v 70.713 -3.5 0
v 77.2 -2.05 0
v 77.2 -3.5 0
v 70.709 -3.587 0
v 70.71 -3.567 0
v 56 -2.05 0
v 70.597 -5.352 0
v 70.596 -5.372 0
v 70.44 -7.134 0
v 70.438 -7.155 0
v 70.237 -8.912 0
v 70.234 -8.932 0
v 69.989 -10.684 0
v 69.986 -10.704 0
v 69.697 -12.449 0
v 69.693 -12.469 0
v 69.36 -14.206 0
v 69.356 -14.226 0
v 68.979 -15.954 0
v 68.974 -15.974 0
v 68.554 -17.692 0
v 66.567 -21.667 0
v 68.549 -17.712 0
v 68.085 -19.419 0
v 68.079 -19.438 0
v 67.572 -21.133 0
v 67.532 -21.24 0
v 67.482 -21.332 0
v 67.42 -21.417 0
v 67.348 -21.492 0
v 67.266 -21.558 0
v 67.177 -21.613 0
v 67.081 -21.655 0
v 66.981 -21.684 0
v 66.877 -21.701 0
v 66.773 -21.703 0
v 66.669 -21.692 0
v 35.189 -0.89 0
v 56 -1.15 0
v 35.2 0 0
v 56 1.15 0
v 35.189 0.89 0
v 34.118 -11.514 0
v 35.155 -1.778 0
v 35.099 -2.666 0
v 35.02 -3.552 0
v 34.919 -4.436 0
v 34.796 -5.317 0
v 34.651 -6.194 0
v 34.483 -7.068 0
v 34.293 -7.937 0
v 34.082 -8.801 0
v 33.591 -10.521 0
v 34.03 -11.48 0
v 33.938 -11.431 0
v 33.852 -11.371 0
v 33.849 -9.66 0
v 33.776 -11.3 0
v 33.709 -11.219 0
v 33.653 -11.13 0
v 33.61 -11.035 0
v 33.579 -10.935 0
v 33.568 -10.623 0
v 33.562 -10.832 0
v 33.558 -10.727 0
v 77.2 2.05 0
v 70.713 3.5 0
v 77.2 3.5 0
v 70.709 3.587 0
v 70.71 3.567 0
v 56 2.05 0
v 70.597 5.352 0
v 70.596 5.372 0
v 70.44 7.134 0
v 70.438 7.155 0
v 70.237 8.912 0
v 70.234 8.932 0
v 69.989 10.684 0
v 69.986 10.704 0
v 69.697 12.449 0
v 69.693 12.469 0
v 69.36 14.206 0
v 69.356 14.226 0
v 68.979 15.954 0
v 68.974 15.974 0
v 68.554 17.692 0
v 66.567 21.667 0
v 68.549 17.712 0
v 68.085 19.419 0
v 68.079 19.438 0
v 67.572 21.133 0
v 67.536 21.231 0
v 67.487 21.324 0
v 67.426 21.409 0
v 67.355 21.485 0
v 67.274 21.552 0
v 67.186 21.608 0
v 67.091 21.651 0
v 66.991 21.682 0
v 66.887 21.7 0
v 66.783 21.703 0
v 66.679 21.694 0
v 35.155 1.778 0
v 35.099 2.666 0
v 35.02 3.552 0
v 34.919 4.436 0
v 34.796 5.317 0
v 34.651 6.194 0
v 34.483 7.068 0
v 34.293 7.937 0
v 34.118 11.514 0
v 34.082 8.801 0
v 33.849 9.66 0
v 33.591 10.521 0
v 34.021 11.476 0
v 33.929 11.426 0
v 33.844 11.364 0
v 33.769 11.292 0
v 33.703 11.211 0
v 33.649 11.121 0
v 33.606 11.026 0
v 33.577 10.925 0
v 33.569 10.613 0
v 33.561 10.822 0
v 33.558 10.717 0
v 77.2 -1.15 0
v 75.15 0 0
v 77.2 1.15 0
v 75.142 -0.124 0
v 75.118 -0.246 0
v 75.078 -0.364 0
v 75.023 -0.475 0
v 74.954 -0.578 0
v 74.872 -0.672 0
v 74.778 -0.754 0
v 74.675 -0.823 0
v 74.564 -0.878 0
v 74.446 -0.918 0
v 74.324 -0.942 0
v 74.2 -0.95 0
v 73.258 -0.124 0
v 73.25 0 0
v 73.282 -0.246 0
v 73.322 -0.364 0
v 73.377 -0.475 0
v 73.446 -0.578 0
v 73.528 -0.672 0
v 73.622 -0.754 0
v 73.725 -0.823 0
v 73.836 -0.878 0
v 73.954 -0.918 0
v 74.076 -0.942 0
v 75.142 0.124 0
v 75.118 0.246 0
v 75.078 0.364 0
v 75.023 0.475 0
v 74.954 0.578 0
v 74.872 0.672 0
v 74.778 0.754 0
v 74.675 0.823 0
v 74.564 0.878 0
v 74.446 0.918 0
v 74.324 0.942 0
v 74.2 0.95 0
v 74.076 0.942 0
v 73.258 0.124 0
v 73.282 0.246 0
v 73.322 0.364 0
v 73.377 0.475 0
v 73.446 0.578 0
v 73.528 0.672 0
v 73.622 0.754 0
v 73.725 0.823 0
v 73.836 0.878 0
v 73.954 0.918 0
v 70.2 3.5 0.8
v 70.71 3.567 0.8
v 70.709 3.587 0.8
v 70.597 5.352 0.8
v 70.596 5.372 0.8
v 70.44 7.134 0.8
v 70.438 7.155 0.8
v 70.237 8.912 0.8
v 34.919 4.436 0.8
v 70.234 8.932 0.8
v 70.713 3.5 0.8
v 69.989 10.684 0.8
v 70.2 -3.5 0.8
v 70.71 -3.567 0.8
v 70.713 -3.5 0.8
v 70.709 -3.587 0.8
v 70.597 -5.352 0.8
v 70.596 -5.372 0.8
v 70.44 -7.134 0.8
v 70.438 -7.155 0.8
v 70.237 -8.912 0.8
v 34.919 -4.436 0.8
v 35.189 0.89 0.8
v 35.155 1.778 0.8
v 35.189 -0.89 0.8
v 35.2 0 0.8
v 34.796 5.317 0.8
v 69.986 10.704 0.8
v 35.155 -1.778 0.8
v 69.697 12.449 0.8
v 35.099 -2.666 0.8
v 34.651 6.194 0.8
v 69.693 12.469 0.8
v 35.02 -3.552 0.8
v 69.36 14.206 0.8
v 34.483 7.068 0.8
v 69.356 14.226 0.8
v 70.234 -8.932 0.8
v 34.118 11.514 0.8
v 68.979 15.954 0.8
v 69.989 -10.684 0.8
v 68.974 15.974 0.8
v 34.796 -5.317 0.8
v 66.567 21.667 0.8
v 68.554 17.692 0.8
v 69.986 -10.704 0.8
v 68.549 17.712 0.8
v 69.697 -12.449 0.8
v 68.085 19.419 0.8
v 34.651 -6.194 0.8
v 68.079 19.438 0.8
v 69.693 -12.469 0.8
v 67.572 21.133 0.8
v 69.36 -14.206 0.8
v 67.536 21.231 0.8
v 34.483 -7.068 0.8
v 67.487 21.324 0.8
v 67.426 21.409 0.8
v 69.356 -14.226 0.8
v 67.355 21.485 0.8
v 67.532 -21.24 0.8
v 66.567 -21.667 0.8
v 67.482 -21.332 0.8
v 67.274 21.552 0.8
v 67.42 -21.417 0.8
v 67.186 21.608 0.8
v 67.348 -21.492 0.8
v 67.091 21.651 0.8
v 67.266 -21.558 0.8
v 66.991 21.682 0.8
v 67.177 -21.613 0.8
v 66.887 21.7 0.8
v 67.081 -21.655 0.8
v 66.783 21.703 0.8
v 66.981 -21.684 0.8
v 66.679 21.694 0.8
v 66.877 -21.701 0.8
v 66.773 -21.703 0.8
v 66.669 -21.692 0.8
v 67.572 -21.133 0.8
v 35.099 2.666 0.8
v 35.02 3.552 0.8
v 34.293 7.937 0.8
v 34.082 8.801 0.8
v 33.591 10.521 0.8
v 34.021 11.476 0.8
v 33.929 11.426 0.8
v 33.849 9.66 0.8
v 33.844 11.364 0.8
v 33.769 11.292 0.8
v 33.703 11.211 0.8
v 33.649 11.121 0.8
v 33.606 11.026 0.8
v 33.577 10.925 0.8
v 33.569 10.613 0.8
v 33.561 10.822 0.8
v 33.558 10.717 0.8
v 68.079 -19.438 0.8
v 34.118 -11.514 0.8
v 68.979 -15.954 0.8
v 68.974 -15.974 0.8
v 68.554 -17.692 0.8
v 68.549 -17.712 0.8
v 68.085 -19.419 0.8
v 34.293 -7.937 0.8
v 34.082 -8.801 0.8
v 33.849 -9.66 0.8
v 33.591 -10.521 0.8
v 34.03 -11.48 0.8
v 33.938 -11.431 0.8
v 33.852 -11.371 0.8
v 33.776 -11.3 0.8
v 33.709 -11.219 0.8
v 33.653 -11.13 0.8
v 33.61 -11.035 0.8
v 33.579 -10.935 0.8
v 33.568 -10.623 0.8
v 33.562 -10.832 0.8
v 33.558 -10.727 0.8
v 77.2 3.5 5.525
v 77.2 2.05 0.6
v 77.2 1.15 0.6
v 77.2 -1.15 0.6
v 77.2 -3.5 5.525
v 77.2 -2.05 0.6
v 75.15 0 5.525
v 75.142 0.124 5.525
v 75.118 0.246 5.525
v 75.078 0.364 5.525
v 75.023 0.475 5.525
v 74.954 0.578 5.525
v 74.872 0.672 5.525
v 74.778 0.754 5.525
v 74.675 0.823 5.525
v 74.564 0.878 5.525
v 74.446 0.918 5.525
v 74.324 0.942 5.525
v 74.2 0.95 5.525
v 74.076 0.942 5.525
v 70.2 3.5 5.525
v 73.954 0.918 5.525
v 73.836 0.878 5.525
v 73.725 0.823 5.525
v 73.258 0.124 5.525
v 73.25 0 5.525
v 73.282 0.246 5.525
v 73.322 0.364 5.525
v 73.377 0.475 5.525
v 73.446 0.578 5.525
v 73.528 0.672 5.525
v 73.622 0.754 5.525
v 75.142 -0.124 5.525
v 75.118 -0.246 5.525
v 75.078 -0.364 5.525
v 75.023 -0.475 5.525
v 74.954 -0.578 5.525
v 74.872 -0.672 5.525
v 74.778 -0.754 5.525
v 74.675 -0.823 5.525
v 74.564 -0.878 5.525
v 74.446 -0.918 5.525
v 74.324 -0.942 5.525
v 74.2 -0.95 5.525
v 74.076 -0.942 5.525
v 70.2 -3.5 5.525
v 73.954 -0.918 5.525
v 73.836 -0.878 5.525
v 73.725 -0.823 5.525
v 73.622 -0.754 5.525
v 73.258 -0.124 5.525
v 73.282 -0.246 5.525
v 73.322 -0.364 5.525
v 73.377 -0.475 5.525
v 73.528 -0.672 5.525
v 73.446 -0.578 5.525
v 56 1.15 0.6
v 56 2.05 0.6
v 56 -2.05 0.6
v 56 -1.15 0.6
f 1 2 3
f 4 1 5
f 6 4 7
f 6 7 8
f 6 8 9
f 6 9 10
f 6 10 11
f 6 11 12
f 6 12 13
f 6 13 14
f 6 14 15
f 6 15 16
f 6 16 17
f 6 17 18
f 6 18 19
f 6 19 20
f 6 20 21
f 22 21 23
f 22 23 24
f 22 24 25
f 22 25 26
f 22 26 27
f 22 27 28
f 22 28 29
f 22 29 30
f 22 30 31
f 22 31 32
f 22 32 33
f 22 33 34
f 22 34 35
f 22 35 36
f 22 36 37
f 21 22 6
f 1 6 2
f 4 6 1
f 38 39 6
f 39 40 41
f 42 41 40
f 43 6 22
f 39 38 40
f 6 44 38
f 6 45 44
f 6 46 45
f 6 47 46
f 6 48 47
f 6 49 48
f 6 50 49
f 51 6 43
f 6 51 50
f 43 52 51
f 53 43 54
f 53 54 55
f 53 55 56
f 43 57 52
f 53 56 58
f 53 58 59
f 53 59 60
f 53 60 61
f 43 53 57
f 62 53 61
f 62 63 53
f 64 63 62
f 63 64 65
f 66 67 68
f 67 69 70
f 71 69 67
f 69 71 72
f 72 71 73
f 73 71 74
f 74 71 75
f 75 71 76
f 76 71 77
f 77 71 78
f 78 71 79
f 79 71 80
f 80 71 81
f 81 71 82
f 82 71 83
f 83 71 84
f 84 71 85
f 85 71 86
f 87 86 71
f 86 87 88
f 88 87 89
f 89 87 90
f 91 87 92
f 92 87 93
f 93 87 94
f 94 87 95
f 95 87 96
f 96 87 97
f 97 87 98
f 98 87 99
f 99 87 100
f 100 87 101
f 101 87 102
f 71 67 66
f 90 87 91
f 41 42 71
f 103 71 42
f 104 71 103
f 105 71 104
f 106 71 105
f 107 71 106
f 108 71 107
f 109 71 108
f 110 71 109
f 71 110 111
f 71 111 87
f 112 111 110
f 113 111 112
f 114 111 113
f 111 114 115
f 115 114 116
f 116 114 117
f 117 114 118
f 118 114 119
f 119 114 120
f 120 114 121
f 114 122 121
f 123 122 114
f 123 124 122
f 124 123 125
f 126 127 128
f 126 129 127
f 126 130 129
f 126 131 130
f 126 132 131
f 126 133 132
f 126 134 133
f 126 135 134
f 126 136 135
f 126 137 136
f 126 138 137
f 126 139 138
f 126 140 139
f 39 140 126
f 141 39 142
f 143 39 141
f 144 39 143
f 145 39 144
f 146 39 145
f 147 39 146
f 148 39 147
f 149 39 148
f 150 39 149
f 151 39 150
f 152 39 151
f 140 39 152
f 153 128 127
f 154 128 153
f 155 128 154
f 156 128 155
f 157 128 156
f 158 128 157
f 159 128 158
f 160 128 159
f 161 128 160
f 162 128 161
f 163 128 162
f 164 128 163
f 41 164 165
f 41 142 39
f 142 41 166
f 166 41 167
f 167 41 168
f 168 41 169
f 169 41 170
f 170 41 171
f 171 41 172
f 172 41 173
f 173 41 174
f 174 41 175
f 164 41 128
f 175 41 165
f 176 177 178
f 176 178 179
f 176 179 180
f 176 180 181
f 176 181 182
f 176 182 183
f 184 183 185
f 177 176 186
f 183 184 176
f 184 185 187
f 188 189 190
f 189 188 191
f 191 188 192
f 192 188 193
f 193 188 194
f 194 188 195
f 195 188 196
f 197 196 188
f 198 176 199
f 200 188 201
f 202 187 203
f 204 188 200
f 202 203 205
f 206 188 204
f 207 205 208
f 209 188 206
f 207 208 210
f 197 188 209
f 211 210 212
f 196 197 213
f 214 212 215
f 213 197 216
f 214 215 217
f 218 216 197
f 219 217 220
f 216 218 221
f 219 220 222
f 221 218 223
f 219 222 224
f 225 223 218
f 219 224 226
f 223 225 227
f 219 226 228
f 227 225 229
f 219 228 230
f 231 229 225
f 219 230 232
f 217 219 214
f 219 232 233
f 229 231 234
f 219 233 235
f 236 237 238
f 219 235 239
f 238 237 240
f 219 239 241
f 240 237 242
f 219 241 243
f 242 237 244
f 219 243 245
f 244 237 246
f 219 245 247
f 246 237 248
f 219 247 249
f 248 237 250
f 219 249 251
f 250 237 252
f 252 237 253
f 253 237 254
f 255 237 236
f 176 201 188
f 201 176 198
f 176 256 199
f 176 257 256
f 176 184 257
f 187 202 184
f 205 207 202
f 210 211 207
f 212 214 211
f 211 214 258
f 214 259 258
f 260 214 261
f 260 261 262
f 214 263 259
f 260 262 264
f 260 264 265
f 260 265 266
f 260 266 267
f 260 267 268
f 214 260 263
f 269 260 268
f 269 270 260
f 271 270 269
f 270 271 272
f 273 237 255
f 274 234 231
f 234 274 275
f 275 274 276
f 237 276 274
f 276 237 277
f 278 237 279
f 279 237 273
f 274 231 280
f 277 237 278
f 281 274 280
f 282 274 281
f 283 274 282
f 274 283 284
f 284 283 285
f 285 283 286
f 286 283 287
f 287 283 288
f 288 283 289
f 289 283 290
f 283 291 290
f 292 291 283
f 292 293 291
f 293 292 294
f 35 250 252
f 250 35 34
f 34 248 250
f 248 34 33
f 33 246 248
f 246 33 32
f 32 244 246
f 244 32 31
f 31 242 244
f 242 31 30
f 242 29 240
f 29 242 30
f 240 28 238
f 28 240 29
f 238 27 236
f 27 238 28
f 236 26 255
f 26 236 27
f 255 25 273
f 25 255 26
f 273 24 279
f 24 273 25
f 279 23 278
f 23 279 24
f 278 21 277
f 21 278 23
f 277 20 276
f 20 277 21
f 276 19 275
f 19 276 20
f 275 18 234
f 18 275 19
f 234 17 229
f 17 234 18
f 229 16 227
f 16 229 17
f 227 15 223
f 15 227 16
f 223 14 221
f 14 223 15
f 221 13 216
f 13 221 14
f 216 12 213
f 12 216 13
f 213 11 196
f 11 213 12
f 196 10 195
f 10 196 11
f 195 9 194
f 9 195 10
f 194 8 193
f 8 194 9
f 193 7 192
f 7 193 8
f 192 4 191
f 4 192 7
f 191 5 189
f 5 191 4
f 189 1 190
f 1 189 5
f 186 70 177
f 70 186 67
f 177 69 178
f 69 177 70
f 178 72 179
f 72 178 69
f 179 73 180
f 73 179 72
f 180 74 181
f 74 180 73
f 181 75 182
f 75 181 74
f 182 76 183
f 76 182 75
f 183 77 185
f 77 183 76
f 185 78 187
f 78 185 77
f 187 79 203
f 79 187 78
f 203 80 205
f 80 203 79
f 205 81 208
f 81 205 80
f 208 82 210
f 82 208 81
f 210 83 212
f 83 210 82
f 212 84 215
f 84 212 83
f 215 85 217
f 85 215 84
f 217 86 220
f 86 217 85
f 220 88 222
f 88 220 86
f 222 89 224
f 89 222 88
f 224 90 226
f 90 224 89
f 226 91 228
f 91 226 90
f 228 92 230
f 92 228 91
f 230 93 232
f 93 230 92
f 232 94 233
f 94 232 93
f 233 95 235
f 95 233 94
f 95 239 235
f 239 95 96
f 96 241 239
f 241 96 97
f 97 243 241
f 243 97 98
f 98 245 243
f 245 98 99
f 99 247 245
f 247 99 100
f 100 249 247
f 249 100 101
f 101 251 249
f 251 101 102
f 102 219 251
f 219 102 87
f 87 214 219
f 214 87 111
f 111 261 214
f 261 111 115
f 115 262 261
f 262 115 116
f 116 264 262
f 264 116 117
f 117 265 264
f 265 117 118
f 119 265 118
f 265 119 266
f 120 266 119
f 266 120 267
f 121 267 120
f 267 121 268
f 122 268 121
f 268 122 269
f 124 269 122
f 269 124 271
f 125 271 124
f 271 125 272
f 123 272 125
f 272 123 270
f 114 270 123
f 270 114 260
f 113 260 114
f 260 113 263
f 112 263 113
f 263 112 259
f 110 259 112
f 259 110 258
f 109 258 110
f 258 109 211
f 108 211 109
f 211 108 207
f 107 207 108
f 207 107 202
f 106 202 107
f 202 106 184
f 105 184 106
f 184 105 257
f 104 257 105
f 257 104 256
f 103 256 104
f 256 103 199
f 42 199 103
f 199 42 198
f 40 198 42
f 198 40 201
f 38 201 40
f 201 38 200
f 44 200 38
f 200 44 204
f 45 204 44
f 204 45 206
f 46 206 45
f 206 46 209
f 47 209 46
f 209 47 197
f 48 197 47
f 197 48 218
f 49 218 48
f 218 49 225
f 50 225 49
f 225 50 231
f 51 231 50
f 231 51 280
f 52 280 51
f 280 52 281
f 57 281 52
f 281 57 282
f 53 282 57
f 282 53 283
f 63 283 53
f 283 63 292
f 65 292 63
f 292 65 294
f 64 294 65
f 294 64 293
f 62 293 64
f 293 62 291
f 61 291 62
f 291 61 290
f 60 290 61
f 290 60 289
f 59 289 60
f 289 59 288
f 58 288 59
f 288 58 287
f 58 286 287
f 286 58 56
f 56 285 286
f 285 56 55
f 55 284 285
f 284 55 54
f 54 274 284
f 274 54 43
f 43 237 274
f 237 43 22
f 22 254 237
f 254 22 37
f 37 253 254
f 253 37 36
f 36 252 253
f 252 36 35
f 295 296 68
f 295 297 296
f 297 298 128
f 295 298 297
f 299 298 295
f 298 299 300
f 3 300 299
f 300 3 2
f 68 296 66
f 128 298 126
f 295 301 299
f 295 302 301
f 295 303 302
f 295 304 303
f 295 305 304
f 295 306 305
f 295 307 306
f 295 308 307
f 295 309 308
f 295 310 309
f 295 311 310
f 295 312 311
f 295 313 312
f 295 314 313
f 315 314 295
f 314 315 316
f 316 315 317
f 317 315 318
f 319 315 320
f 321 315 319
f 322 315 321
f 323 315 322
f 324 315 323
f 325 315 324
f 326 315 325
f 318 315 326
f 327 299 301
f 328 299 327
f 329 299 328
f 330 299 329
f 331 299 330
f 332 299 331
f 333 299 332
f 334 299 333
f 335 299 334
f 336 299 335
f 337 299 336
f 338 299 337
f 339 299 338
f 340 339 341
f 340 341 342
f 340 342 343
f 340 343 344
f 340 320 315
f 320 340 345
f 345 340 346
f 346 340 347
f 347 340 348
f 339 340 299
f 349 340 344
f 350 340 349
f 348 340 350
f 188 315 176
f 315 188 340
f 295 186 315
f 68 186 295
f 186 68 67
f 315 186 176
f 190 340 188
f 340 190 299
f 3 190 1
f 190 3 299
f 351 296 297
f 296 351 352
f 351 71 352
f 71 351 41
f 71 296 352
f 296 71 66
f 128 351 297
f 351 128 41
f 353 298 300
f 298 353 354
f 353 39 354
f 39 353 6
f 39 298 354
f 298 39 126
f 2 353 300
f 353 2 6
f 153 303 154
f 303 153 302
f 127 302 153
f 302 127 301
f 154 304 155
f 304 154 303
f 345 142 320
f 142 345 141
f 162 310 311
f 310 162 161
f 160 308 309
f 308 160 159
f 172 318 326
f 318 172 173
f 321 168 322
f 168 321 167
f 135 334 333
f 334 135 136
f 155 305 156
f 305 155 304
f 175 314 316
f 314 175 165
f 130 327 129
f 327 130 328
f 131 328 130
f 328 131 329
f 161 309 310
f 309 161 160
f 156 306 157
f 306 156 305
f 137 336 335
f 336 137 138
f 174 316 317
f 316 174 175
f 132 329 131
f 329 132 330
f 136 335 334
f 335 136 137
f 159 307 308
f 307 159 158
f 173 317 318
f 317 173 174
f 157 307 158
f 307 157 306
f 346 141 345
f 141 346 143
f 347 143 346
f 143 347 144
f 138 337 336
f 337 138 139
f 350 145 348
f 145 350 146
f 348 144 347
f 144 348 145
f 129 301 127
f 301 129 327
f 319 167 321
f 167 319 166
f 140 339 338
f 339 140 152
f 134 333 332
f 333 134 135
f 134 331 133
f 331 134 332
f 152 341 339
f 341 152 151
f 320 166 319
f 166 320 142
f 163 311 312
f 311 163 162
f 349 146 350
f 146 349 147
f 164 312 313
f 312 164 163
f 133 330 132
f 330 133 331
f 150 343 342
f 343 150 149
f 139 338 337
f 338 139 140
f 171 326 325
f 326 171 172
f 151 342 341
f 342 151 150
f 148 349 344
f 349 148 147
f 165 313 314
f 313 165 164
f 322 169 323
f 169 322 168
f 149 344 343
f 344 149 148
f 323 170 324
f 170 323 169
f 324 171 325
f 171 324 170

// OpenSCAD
// file: parameters.scad
// =============================================================================
// Gen-BT — nightly 2026-10-09 (physics_scorer, honest magpylib watts)
// The low-cogging 8-pole / 9-coil line (winding factor 0.945) moved to a larger R53 pole ring with 36–70 mm bobbins and a 13.5 mm build, the best 9-coil row in tonight's scans (Gen-BQ was R52 / 35–70 / 12.6). Smoother to spin by hand and quieter, but still well below 6 coils under the wire budget.
// Clocking 0 deg (magnets N facing S) + D-flat keyed bore + index notch + flip-symmetric hole map.
// Windable 2-piece bobbin; turns = physics_scorer turns_fit; copper only between flanges.
// Steel back-iron: 2× Ø140 × 4.76 mm (3/16") mild-steel discs (steel_backiron_disc.dxf); magnets sit ON the steel
// (through-pockets) -> score with --back-iron.
// =============================================================================
topology            = "dual_rotor";

// --- Wire / winding (physics_scorer winding-fit) -------------------------------
wire_awg            = 26;
wire_od             = 0.45;     // insulated OD mm (bare 0.405)
fill_realistic      = 0.65;     // insulated-wire area / window (DENSE layered wind with a jig; scorer cap 0.65)
turns               = 521;       // = physics_scorer turns_fit (do NOT raise)
coil_former_type    = "bobbin";
coil_core_inset     = 13.50;     // radial copper build: hub = copper boundary inset by this
wind_build_axial    = 0.0;      // nothing proud of the flanges
wind_build_radial   = 0.0;

// --- Bobbin (base + lid) ---------------------------------------------------------
coil_id_r           = 36.00;    // copper boundary sector
coil_od_r           = 70.00;
span_deg            = 34.75;    // = pitch - 2*asin((wall+0.85)/coil_id_r) -> >=1.2 mm stator web
former_web          = 9.45;     // copper height between flanges (TALL copper: steel keeps Bz up)
flange_t            = 0.80;     // >= 0.8 mm FDM wall rule (tall winds push on the flanges)
wall                = 0.80;     // flange lip beyond copper
former_bare_h       = former_web + 2 * flange_t;
coil_envelope_h     = former_bare_h + 2 * wind_build_axial;
tab_w               = 7.0;
tab_len             = 7.0;
tab_h               = former_bare_h / 2;
pin_d               = 1.9;      // 1.75 mm filament locating pin
coil_mount_r        = coil_od_r + 0.2 + 4.0;
lead_y              = 1.6;
lead_slot_w         = 0.9;
lead_groove_d       = 0.6;

// --- Gap -------------------------------------------------------------------------
run_clear           = 0.50;     // rotor face -> flange
gap_spacer_h        = run_clear + wind_build_axial;
m2m                 = coil_envelope_h + 2 * run_clear;   // rotor face to rotor face (= gap_sleeve length)

// --- Stator ----------------------------------------------------------------------
coil_stations       = 9;
bay_clear           = 0.25;
stator_thick        = former_bare_h;                        // bobbins flush both faces
stator_od           = 162.0;
shaft_clear_stator  = 14.0;     // stator is static; gap sleeve OD 12 spins inside

// --- Rotor(s) --------------------------------------------------------------------
magnet_Br           = 1.43;     // N52
magnet_d_large      = 20.0;
magnet_h_large      = 5.0;      // one O20x5 per pocket
magnet_h_small      = 5.0;      // one O5x5 per pocket
halbach_magnetisation = "diametric"; // O5x5 assist magnets MUST be DIAMETRICALLY magnetised (tangential)
rotor_b_same_axis   = true;     // same-index magnets share one axis: N faces S across the gap
large_pocket_d      = 20.3;
small_pocket_d      = 5.3;
pocket_h            = 5.00;     // THROUGH the carrier: magnet back face sits on the steel disc (FLUSH seat: carrier = magnet height, magnet face level with the rotor face)
large_n             = 8;
R_large             = 53.0;
R_small_inner       = 45.0;
R_small_mid         = 53.0;
R_small_outer       = 61.0;
small_r_list        = [R_small_inner, R_small_mid, R_small_outer];   // O5 pockets between poles
carrier_od          = 140.0;
carrier_thick       = pocket_h;
hub_h               = 12.0;     // > steel_t + insert: radial set-screw clears the steel
hub_od              = 24.0;     // slim hub so the M4 brace rods fit at R~18 inside the coil ring
hub_insert_d        = 4.0;      // M3 heat-set insert, radial, bears on the D-flat
rotor_b_offset_deg  = 0.0;      // CLOCKING: magnets directly opposite
shaft_key           = "dflat";
dflat_depth         = 0.5;      // 8 mm shaft with 0.5 mm flat (7.5 across flat)
index_notch_d       = 3.0;

// --- Steel back-iron (buyable laser-cut) -------------------------------------------
steel_t             = 4.76;      // mild steel thickness (image method ignores it; sized from steel_flux.py so the return path stays well below saturation)
steel_center_hole   = 26.0;     // slips over the rotor hub (OD 24)
steel_od            = carrier_od;   // steel disc OD = rotor carrier OD

// --- Modular MAX interface ----------------------------------------------------------
shaft_bore          = 8.35;
dflat_x             = 4.0 - dflat_depth + (shaft_bore - 8.0) / 2;
bearing_d           = 21.85;
bearing_h           = 7.2;
m3_clear            = 3.5;
bolt_r_inner        = 30.0;     // M3 steel-disc clamp bolts (inside the magnet ring)
bolt_n_inner        = 4;
bolt_inner_angles   = [0, 90, 180, 270];
bolt_r_outer        = 66.0;     // M3 steel-disc clamp bolts (outside the magnet ring)
bolt_outer_angles   = [45, 135, 225, 315];
flange_bolt_r       = 76.0;     // frame rods: OUTSIDE the rotor OD (rotors spin inside them)
flange_bolt_n       = 9;
flange_bolt_offset  = 20.00;    // between coil stations -> never cuts a lead groove/tab
brace_r             = 18.0;
brace_d             = 4.3;      // temporary M4 jack rods (assembly only)
brace_n             = 4;
brace_angles        = [45, 135, 225, 315];          // flip-symmetric

spacer_pad_od       = 14.0;
spacer_pad_id       = m3_clear;
endbell_od          = 162.0;
endbell_thick       = 8.0;
endbell_shaft_clear = 10.0;
collar_h            = 10.0;
standoff_od         = 9.0;
frame_standoff_h    = run_clear + carrier_thick + hub_h + collar_h + 2.0;
sleeve_od           = 12.0;
plate_max_mm        = 410;

$fn = 64;
// main file
// Gen-BT — bobbin LID (top flange + locating tab). Print x9, flange face DOWN on the bed.
// CA-glue onto the hub top BEFORE winding. Tab = lap joint into the stator tab pocket; 1.75 mm filament
// pin through pin hole + stator ledge, trim flush. Lead slots carry both leads flush.
include <parameters.scad>;
$fn = 48;
module sector_2d(r_in, r_out, ang) {
    polygon([
        for (a = [-ang/2 : ang/24 : ang/2]) [r_in*cos(a), r_in*sin(a)],
        for (a = [ang/2 : -ang/24 : -ang/2]) [r_out*cos(a), r_out*sin(a)]
    ]);
}
module footprint_2d() { offset(r=wall) sector_2d(coil_id_r, coil_od_r, span_deg); }
module hub_2d()       { offset(delta=-coil_core_inset) sector_2d(coil_id_r, coil_od_r, span_deg); }

difference() {
    union() {
        linear_extrude(flange_t) footprint_2d();
        translate([coil_od_r + 0.2, -tab_w/2, 0]) cube([tab_len, tab_w, tab_h]);
    }
    translate([coil_mount_r, 0, -0.1]) cylinder(d=pin_d, h=tab_h + 1);
    for (y = [lead_y, -lead_y])
        translate([coil_od_r - coil_core_inset - 0.5, y - lead_slot_w/2, -0.1])
            cube([coil_core_inset + tab_len + 2, lead_slot_w, lead_groove_d + 0.1]);
}
